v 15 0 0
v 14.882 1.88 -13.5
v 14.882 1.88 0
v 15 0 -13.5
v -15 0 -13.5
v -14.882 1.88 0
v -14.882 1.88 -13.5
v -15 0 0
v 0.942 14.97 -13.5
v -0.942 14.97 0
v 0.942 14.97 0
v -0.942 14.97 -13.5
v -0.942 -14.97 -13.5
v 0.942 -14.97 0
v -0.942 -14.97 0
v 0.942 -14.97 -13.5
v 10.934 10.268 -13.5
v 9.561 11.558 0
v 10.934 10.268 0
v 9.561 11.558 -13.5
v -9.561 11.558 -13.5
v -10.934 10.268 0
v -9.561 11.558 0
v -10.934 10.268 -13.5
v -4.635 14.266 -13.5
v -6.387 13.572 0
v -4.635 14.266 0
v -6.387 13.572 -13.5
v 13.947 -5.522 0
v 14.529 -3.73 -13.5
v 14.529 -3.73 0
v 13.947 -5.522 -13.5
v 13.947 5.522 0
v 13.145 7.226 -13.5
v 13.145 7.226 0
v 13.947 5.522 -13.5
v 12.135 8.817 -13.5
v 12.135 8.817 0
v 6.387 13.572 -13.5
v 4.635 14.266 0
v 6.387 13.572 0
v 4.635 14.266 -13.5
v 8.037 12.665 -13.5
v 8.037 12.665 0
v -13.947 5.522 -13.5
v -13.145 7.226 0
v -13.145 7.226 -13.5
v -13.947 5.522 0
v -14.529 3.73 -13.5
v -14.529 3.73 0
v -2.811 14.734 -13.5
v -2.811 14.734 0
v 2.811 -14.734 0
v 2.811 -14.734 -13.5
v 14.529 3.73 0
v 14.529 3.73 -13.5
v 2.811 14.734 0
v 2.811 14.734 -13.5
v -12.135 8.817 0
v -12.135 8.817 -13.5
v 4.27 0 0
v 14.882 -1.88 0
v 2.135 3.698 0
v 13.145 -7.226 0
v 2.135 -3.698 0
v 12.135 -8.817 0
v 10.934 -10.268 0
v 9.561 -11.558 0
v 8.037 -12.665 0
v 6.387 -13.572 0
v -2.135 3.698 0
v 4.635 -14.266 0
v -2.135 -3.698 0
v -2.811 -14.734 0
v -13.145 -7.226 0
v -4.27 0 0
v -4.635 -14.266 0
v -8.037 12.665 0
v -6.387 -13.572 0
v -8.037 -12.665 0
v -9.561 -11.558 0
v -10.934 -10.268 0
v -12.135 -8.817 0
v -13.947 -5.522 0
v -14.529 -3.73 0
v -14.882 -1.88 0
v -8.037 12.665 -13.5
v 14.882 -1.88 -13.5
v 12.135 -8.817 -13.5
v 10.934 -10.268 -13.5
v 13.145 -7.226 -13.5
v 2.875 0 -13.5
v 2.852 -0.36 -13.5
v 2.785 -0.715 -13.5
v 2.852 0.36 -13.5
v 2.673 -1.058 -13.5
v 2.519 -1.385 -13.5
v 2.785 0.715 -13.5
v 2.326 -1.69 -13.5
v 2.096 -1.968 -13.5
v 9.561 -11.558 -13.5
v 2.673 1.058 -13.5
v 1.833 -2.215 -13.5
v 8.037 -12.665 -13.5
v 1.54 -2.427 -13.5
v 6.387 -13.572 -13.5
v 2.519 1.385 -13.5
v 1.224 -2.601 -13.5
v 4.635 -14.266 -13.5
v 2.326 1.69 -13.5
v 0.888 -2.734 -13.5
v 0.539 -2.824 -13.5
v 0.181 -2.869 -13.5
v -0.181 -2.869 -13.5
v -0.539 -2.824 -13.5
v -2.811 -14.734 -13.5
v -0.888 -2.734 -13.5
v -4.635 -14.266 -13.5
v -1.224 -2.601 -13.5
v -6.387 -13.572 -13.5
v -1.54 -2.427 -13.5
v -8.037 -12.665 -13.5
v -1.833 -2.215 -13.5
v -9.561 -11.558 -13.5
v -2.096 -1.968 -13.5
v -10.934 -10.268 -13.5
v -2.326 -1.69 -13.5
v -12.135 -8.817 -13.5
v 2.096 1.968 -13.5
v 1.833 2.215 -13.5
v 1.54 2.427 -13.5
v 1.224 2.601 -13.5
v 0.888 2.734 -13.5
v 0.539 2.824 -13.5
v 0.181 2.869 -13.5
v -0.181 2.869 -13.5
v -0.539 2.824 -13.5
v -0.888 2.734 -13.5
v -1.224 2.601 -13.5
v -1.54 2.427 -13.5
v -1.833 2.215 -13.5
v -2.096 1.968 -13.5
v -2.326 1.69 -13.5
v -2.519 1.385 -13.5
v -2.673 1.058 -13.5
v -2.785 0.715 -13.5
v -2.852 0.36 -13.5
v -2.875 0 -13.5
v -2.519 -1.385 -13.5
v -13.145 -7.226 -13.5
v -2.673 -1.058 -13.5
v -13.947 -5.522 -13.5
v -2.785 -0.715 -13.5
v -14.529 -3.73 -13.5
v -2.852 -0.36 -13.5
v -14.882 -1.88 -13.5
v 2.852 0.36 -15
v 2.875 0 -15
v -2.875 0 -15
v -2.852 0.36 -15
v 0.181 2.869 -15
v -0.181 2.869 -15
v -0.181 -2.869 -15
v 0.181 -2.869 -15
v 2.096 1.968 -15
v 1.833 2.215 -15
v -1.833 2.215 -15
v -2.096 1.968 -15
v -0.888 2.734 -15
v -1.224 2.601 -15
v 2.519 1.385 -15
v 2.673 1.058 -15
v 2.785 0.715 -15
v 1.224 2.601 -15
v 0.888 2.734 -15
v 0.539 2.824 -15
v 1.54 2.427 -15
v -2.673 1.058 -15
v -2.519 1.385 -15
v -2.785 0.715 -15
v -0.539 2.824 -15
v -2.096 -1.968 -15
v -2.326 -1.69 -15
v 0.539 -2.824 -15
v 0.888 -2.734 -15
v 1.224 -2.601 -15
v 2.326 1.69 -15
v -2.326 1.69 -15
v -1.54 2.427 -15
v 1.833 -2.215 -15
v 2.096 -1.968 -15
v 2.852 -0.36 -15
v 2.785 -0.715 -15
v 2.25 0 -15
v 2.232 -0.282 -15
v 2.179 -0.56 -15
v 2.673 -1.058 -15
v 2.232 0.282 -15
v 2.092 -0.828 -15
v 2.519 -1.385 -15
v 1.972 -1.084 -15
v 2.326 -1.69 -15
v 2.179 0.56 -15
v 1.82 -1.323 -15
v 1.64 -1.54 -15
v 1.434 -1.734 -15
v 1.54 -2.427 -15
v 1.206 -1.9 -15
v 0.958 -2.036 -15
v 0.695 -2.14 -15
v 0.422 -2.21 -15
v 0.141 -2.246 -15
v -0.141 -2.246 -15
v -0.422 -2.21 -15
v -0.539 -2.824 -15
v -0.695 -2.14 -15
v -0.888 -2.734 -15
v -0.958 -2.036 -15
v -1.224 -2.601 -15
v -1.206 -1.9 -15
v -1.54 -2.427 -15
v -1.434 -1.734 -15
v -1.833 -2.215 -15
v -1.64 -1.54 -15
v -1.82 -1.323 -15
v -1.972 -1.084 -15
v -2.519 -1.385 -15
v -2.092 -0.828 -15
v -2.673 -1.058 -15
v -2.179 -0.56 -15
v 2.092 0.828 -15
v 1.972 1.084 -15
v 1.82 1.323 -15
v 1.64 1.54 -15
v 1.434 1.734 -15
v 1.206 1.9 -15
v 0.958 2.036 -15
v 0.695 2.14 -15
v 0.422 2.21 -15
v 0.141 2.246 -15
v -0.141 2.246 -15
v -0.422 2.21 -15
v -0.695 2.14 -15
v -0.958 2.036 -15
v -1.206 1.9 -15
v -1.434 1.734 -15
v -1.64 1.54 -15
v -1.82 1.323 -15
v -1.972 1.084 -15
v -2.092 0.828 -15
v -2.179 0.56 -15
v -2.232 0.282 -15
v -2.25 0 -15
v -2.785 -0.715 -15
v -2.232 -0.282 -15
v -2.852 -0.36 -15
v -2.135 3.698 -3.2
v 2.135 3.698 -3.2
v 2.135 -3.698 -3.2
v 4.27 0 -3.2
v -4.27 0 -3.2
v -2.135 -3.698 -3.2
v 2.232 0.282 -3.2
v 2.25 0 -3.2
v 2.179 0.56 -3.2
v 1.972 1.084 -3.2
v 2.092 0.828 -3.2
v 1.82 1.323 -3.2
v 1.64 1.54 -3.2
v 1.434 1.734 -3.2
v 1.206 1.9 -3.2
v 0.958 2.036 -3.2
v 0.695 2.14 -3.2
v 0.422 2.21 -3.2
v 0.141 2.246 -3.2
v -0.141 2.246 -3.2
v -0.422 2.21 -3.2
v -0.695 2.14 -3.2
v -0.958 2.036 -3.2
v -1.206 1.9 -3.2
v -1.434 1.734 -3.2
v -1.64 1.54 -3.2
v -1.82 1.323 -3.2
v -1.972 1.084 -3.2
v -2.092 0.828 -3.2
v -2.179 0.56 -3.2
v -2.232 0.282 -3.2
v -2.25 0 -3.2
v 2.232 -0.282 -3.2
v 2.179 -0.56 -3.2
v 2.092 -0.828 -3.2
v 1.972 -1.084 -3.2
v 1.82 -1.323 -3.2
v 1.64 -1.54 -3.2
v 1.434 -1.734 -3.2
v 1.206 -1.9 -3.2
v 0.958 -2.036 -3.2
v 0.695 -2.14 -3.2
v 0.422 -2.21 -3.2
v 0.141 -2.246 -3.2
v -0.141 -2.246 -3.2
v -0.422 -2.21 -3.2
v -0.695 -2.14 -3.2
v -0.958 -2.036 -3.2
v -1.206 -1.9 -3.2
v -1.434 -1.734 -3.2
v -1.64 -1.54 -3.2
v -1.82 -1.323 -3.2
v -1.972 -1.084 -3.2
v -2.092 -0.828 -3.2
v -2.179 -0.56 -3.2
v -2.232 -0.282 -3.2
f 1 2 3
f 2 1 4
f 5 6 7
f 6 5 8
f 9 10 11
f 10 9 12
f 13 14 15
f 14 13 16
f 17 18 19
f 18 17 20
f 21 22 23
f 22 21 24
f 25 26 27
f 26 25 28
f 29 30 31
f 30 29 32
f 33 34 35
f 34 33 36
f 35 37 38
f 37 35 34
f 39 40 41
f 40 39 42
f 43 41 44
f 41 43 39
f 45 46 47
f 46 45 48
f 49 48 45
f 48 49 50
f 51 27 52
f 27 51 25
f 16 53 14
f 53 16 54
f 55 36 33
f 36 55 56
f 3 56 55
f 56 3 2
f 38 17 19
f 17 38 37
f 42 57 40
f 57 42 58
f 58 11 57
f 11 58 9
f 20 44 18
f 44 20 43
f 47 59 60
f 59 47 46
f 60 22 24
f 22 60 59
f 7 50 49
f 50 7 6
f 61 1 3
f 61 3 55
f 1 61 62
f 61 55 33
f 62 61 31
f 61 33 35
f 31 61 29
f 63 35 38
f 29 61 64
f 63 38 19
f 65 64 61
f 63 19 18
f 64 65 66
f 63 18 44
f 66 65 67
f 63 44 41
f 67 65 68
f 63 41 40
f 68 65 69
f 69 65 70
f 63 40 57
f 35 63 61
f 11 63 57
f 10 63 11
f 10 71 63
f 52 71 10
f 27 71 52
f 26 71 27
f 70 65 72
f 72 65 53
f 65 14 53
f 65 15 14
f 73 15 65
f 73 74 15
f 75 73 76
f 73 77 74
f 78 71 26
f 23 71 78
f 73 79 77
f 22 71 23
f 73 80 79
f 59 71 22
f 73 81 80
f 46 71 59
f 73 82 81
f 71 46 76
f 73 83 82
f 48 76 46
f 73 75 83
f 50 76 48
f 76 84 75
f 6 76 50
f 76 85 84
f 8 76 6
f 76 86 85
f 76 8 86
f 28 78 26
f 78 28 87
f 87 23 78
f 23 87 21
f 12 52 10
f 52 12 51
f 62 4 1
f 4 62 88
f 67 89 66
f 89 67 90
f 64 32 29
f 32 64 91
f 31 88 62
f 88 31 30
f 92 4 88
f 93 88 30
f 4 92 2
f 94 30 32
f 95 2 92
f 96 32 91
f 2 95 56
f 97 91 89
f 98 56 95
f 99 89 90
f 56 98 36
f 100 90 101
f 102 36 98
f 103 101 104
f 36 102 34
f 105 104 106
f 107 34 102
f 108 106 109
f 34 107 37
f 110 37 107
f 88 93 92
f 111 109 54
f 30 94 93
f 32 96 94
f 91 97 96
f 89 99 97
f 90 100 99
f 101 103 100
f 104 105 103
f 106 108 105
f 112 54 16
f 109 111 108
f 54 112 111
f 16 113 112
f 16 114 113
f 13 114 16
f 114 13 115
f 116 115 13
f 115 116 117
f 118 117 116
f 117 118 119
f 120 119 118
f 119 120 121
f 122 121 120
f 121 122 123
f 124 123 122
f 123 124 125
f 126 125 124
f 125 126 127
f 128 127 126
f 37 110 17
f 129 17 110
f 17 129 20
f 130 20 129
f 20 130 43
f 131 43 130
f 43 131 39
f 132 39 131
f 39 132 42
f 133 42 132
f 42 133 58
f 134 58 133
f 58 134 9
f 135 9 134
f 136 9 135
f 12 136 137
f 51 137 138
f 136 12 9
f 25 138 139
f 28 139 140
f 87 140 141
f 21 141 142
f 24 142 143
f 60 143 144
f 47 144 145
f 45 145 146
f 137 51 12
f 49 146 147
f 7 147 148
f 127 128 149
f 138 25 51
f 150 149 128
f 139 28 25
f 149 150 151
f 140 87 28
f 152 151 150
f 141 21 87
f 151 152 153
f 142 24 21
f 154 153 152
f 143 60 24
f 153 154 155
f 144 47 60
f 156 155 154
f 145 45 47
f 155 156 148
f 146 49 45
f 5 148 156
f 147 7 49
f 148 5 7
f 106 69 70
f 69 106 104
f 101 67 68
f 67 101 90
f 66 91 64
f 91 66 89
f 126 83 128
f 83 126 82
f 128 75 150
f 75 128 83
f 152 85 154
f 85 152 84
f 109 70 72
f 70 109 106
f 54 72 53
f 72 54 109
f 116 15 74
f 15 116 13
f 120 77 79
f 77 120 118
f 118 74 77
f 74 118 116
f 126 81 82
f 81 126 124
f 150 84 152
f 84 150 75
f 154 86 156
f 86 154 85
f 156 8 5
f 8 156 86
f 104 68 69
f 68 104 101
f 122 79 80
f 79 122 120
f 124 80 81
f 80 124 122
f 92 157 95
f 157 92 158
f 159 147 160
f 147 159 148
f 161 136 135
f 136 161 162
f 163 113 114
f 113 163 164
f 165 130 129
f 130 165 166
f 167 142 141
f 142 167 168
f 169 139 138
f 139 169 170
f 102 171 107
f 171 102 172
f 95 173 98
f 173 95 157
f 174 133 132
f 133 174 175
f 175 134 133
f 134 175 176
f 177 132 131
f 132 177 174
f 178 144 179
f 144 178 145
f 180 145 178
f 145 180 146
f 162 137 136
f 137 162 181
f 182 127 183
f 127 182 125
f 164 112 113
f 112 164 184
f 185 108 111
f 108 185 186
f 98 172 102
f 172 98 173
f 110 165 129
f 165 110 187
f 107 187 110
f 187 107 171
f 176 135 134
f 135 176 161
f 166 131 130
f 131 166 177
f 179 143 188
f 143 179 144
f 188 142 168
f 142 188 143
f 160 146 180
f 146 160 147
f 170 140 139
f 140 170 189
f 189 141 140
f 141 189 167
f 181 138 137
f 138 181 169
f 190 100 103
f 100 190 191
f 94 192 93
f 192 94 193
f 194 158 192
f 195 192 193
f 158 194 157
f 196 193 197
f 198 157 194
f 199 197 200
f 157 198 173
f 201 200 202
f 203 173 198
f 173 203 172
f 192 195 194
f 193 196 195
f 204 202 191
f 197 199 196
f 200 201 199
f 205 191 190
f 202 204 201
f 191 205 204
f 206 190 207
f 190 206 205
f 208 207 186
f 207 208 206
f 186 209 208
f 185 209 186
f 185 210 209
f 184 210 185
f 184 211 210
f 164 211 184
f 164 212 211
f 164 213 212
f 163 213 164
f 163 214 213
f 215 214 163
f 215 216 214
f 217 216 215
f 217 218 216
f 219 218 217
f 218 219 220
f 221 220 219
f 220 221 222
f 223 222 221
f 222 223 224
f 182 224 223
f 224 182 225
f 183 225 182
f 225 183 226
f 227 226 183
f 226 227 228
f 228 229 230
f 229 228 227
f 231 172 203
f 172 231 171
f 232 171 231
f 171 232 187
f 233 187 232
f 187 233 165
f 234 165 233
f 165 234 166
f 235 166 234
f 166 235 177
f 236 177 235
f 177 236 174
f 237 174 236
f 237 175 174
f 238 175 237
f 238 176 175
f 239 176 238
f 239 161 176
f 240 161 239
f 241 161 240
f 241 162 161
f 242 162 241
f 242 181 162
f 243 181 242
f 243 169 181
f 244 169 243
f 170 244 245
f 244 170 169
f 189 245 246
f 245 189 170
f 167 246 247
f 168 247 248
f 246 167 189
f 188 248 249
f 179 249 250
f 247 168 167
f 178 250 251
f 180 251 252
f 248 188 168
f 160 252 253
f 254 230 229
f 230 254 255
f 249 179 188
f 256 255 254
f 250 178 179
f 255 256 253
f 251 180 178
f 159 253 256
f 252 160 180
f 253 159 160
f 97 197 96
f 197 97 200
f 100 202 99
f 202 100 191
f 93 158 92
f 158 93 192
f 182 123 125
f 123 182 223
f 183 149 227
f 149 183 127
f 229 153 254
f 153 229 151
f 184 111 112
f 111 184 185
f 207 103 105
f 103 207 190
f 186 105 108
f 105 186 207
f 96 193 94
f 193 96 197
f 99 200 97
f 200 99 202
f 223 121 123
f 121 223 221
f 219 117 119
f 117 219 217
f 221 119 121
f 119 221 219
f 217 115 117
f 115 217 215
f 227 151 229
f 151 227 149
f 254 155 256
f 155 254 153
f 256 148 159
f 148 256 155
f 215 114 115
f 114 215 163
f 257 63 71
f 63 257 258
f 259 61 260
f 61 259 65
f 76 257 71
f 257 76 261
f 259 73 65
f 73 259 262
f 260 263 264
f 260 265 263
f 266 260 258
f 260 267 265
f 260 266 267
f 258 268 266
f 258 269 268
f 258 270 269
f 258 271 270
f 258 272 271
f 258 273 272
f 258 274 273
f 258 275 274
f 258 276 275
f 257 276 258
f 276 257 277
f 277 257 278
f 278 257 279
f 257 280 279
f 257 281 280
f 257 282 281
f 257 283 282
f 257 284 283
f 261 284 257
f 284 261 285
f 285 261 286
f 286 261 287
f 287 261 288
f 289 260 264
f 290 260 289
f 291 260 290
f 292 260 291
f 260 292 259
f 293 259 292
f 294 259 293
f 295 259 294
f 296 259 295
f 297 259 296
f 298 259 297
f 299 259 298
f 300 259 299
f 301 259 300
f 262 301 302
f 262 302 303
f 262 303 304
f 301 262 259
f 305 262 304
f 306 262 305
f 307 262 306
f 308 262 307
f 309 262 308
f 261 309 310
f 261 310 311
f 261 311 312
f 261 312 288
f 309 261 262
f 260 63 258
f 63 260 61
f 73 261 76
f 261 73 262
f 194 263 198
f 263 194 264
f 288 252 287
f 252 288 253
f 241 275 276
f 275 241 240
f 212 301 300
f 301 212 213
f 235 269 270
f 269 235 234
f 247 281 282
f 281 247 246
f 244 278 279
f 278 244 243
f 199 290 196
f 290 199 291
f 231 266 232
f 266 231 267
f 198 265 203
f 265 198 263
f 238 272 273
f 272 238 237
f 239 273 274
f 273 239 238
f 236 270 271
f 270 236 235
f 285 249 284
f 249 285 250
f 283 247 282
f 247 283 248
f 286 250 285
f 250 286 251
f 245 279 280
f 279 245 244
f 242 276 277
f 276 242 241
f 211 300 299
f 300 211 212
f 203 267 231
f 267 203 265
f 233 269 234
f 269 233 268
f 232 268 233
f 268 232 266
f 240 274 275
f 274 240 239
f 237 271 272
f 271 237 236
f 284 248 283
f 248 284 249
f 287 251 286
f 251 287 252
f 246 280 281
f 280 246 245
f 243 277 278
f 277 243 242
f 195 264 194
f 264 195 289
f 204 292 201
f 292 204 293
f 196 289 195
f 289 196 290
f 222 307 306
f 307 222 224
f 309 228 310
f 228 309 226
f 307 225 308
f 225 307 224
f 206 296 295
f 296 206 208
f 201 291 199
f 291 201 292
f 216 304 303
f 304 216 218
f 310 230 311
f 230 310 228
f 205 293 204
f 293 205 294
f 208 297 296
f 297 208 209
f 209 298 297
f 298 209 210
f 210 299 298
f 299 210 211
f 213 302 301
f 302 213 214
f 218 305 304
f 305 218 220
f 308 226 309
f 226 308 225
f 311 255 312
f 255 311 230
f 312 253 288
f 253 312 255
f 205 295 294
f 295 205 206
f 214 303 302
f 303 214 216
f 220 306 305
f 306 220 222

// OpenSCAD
$fn = 50;


difference() {
	union() {
		translate(v = [0, 0, -13.5000000000]) {
			cylinder(h = 13.5000000000, r = 15.0000000000);
		}
		translate(v = [0, 0, -15.0000000000]) {
			cylinder(h = 15, r = 2.8750000000);
		}
	}
	union() {
		translate(v = [0, 0, 0]) {
			rotate(a = [0, 0, 0]) {
				difference() {
					union() {
						translate(v = [0, 0, -3.2000000000]) {
							linear_extrude(height = 3.2000000000) {
								polygon(points = [[4.2698000000, 0.0000000000], [2.1349000000, 3.6977552691], [-2.1349000000, 3.6977552691], [-4.2698000000, 0.0000000000], [-2.1349000000, -3.6977552691], [2.1349000000, -3.6977552691]]);
							}
						}
					}
					union();
				}
			}
		}
		#translate(v = [0, 0, -100.0000000000]) {
			cylinder(h = 200, r = 2.2500000000);
		}
	}
}
